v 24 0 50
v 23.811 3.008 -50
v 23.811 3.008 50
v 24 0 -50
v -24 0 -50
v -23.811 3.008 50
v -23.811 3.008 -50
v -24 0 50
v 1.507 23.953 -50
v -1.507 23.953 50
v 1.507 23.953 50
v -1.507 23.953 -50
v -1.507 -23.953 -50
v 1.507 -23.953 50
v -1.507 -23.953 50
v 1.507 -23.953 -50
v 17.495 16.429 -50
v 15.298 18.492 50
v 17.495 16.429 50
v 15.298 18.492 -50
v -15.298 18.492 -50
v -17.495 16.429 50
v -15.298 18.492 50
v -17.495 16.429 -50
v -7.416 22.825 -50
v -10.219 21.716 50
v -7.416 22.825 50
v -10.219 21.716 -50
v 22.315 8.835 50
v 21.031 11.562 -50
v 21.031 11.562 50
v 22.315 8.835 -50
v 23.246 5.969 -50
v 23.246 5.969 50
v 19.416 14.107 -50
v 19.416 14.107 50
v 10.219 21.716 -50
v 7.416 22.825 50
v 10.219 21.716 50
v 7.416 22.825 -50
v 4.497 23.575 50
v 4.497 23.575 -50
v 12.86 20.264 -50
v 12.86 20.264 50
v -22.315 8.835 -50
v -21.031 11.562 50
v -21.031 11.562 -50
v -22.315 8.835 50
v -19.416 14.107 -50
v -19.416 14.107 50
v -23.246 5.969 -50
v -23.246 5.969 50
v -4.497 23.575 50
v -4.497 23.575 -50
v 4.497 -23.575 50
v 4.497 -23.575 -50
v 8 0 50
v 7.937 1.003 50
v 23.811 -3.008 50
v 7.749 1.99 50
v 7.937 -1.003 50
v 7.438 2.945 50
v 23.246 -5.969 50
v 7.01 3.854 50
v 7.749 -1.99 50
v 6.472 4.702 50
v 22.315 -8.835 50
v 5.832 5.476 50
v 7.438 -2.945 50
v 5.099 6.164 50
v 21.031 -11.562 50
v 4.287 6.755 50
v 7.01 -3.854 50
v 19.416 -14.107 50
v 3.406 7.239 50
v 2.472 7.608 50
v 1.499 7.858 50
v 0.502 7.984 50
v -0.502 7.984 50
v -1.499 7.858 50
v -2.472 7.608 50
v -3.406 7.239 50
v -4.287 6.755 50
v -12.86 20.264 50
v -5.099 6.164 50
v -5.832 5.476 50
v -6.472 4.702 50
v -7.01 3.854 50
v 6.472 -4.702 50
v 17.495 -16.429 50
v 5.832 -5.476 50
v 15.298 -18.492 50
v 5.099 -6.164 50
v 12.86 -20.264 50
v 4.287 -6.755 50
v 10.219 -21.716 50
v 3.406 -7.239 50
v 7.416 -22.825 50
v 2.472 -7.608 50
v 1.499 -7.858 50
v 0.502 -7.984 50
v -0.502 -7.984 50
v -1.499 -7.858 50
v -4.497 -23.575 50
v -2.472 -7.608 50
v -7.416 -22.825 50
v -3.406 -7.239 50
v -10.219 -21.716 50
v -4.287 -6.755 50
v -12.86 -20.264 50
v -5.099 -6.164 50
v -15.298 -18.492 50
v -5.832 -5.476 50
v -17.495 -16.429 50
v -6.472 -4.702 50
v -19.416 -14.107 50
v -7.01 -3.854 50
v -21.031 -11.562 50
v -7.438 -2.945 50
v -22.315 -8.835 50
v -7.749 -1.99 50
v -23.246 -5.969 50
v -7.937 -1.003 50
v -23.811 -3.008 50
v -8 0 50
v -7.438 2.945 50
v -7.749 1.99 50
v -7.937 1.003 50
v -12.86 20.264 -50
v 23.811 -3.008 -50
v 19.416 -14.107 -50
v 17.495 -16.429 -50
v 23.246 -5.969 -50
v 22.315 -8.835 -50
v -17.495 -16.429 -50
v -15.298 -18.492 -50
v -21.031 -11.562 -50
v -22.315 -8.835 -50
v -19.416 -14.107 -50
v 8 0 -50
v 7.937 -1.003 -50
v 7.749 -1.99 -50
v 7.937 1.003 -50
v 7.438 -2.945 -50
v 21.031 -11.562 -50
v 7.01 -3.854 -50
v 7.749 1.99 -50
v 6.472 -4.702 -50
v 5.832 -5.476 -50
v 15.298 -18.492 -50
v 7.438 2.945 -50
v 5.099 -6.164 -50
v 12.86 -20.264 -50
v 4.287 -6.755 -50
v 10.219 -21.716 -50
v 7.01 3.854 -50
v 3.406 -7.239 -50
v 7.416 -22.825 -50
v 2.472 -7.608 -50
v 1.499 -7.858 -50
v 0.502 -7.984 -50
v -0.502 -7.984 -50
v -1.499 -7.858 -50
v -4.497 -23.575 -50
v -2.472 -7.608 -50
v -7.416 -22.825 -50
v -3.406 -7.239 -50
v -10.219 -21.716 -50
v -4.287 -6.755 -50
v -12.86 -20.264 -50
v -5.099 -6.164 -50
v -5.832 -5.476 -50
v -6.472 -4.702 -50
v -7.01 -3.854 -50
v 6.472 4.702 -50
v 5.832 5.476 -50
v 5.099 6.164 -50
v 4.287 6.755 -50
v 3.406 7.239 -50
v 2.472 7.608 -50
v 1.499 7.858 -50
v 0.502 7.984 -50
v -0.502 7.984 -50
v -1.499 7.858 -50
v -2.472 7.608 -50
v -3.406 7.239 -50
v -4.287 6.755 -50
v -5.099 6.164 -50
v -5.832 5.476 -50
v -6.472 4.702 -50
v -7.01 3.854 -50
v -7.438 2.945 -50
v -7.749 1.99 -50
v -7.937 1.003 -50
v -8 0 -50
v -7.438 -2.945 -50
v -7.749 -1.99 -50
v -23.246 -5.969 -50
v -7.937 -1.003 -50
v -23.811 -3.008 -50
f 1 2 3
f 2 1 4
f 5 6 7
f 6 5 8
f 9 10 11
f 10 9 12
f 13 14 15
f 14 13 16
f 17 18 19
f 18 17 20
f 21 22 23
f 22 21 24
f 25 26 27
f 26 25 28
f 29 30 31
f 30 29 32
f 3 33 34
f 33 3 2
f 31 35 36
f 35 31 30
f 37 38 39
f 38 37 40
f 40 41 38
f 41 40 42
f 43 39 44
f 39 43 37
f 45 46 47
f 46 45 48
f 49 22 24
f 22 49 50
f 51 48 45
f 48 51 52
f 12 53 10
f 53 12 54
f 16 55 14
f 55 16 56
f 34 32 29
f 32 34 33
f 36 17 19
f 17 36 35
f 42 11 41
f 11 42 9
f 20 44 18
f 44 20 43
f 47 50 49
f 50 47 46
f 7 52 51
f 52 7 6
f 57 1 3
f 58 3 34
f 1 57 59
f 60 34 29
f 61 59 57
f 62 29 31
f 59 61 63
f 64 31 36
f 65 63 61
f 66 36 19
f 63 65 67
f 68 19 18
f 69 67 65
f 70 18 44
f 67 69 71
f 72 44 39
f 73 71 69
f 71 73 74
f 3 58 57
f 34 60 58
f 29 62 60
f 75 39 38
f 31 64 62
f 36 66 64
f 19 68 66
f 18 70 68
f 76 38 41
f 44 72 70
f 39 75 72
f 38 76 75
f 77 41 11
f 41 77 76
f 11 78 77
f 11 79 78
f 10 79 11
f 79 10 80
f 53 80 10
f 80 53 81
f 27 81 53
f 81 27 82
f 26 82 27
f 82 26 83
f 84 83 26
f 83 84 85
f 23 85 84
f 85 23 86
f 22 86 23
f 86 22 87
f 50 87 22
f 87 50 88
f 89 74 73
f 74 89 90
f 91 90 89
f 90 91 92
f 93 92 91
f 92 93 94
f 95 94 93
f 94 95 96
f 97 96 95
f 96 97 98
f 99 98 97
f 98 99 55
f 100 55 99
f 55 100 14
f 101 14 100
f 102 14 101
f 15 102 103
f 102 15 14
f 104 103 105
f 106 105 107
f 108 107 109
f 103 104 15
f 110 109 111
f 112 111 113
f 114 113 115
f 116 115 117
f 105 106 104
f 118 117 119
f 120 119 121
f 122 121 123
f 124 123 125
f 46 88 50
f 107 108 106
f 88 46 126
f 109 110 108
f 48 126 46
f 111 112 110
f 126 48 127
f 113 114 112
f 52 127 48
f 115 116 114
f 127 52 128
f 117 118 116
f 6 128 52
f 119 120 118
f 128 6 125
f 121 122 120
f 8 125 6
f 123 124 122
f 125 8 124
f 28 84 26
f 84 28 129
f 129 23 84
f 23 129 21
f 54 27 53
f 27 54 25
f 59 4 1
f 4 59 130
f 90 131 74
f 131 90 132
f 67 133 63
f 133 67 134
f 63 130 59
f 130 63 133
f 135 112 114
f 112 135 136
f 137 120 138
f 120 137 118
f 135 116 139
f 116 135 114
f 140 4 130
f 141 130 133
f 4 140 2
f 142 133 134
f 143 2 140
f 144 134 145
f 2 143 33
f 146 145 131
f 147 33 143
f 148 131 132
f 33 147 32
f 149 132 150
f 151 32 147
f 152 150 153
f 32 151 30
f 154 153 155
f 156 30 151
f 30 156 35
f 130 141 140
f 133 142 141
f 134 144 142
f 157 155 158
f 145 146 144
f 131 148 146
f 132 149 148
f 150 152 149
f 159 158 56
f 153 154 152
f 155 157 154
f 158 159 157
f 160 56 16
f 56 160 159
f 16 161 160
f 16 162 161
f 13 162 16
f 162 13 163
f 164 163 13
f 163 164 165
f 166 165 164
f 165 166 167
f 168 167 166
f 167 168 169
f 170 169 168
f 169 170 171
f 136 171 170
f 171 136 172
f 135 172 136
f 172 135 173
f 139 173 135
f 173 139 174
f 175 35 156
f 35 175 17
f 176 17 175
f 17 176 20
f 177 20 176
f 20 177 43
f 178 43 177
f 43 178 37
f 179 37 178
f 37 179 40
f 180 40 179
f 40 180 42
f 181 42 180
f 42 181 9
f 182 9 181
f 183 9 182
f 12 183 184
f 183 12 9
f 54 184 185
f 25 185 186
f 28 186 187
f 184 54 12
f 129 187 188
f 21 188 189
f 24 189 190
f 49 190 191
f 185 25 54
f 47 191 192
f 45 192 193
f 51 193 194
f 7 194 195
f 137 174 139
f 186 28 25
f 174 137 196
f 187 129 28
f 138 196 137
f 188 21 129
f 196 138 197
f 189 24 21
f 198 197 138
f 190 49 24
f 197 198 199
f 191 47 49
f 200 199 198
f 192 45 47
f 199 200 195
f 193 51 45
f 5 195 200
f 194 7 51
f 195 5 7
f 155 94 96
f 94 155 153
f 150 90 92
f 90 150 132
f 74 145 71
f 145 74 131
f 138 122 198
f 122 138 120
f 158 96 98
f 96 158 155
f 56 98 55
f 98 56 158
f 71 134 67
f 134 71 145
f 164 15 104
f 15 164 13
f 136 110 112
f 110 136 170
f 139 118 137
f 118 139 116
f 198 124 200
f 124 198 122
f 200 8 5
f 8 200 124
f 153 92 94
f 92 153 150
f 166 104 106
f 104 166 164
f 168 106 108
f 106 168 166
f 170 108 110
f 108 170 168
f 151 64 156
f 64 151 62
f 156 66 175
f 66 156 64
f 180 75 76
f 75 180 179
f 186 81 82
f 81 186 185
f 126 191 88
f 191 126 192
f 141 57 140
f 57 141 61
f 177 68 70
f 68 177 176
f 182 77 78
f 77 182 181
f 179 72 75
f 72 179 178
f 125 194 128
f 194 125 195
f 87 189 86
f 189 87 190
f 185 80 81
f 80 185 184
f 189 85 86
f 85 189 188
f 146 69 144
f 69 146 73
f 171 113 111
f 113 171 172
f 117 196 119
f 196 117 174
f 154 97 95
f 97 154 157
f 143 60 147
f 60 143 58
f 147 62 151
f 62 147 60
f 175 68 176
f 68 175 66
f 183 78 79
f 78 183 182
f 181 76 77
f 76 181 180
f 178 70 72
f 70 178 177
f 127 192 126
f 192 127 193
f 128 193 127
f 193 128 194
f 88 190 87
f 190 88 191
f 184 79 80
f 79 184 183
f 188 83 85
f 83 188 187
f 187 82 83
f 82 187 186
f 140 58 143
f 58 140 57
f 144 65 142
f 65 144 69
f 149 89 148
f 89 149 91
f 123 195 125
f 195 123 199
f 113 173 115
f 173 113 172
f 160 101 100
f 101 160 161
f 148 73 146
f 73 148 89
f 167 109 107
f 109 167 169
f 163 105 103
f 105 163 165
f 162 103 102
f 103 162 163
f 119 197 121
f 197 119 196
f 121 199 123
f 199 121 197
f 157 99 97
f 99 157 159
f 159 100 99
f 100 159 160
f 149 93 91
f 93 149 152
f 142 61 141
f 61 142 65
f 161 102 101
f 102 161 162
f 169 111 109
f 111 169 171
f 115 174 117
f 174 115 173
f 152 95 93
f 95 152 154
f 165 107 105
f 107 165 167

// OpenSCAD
$fn = 50;


difference() {
	union() {
		translate(v = [0, 0, -50.0000000000]) {
			cylinder(h = 100, r = 24.0000000000);
		}
	}
	union() {
		translate(v = [0, 0, -100.0000000000]) {
			cylinder(h = 200, r = 8);
		}
	}
}
